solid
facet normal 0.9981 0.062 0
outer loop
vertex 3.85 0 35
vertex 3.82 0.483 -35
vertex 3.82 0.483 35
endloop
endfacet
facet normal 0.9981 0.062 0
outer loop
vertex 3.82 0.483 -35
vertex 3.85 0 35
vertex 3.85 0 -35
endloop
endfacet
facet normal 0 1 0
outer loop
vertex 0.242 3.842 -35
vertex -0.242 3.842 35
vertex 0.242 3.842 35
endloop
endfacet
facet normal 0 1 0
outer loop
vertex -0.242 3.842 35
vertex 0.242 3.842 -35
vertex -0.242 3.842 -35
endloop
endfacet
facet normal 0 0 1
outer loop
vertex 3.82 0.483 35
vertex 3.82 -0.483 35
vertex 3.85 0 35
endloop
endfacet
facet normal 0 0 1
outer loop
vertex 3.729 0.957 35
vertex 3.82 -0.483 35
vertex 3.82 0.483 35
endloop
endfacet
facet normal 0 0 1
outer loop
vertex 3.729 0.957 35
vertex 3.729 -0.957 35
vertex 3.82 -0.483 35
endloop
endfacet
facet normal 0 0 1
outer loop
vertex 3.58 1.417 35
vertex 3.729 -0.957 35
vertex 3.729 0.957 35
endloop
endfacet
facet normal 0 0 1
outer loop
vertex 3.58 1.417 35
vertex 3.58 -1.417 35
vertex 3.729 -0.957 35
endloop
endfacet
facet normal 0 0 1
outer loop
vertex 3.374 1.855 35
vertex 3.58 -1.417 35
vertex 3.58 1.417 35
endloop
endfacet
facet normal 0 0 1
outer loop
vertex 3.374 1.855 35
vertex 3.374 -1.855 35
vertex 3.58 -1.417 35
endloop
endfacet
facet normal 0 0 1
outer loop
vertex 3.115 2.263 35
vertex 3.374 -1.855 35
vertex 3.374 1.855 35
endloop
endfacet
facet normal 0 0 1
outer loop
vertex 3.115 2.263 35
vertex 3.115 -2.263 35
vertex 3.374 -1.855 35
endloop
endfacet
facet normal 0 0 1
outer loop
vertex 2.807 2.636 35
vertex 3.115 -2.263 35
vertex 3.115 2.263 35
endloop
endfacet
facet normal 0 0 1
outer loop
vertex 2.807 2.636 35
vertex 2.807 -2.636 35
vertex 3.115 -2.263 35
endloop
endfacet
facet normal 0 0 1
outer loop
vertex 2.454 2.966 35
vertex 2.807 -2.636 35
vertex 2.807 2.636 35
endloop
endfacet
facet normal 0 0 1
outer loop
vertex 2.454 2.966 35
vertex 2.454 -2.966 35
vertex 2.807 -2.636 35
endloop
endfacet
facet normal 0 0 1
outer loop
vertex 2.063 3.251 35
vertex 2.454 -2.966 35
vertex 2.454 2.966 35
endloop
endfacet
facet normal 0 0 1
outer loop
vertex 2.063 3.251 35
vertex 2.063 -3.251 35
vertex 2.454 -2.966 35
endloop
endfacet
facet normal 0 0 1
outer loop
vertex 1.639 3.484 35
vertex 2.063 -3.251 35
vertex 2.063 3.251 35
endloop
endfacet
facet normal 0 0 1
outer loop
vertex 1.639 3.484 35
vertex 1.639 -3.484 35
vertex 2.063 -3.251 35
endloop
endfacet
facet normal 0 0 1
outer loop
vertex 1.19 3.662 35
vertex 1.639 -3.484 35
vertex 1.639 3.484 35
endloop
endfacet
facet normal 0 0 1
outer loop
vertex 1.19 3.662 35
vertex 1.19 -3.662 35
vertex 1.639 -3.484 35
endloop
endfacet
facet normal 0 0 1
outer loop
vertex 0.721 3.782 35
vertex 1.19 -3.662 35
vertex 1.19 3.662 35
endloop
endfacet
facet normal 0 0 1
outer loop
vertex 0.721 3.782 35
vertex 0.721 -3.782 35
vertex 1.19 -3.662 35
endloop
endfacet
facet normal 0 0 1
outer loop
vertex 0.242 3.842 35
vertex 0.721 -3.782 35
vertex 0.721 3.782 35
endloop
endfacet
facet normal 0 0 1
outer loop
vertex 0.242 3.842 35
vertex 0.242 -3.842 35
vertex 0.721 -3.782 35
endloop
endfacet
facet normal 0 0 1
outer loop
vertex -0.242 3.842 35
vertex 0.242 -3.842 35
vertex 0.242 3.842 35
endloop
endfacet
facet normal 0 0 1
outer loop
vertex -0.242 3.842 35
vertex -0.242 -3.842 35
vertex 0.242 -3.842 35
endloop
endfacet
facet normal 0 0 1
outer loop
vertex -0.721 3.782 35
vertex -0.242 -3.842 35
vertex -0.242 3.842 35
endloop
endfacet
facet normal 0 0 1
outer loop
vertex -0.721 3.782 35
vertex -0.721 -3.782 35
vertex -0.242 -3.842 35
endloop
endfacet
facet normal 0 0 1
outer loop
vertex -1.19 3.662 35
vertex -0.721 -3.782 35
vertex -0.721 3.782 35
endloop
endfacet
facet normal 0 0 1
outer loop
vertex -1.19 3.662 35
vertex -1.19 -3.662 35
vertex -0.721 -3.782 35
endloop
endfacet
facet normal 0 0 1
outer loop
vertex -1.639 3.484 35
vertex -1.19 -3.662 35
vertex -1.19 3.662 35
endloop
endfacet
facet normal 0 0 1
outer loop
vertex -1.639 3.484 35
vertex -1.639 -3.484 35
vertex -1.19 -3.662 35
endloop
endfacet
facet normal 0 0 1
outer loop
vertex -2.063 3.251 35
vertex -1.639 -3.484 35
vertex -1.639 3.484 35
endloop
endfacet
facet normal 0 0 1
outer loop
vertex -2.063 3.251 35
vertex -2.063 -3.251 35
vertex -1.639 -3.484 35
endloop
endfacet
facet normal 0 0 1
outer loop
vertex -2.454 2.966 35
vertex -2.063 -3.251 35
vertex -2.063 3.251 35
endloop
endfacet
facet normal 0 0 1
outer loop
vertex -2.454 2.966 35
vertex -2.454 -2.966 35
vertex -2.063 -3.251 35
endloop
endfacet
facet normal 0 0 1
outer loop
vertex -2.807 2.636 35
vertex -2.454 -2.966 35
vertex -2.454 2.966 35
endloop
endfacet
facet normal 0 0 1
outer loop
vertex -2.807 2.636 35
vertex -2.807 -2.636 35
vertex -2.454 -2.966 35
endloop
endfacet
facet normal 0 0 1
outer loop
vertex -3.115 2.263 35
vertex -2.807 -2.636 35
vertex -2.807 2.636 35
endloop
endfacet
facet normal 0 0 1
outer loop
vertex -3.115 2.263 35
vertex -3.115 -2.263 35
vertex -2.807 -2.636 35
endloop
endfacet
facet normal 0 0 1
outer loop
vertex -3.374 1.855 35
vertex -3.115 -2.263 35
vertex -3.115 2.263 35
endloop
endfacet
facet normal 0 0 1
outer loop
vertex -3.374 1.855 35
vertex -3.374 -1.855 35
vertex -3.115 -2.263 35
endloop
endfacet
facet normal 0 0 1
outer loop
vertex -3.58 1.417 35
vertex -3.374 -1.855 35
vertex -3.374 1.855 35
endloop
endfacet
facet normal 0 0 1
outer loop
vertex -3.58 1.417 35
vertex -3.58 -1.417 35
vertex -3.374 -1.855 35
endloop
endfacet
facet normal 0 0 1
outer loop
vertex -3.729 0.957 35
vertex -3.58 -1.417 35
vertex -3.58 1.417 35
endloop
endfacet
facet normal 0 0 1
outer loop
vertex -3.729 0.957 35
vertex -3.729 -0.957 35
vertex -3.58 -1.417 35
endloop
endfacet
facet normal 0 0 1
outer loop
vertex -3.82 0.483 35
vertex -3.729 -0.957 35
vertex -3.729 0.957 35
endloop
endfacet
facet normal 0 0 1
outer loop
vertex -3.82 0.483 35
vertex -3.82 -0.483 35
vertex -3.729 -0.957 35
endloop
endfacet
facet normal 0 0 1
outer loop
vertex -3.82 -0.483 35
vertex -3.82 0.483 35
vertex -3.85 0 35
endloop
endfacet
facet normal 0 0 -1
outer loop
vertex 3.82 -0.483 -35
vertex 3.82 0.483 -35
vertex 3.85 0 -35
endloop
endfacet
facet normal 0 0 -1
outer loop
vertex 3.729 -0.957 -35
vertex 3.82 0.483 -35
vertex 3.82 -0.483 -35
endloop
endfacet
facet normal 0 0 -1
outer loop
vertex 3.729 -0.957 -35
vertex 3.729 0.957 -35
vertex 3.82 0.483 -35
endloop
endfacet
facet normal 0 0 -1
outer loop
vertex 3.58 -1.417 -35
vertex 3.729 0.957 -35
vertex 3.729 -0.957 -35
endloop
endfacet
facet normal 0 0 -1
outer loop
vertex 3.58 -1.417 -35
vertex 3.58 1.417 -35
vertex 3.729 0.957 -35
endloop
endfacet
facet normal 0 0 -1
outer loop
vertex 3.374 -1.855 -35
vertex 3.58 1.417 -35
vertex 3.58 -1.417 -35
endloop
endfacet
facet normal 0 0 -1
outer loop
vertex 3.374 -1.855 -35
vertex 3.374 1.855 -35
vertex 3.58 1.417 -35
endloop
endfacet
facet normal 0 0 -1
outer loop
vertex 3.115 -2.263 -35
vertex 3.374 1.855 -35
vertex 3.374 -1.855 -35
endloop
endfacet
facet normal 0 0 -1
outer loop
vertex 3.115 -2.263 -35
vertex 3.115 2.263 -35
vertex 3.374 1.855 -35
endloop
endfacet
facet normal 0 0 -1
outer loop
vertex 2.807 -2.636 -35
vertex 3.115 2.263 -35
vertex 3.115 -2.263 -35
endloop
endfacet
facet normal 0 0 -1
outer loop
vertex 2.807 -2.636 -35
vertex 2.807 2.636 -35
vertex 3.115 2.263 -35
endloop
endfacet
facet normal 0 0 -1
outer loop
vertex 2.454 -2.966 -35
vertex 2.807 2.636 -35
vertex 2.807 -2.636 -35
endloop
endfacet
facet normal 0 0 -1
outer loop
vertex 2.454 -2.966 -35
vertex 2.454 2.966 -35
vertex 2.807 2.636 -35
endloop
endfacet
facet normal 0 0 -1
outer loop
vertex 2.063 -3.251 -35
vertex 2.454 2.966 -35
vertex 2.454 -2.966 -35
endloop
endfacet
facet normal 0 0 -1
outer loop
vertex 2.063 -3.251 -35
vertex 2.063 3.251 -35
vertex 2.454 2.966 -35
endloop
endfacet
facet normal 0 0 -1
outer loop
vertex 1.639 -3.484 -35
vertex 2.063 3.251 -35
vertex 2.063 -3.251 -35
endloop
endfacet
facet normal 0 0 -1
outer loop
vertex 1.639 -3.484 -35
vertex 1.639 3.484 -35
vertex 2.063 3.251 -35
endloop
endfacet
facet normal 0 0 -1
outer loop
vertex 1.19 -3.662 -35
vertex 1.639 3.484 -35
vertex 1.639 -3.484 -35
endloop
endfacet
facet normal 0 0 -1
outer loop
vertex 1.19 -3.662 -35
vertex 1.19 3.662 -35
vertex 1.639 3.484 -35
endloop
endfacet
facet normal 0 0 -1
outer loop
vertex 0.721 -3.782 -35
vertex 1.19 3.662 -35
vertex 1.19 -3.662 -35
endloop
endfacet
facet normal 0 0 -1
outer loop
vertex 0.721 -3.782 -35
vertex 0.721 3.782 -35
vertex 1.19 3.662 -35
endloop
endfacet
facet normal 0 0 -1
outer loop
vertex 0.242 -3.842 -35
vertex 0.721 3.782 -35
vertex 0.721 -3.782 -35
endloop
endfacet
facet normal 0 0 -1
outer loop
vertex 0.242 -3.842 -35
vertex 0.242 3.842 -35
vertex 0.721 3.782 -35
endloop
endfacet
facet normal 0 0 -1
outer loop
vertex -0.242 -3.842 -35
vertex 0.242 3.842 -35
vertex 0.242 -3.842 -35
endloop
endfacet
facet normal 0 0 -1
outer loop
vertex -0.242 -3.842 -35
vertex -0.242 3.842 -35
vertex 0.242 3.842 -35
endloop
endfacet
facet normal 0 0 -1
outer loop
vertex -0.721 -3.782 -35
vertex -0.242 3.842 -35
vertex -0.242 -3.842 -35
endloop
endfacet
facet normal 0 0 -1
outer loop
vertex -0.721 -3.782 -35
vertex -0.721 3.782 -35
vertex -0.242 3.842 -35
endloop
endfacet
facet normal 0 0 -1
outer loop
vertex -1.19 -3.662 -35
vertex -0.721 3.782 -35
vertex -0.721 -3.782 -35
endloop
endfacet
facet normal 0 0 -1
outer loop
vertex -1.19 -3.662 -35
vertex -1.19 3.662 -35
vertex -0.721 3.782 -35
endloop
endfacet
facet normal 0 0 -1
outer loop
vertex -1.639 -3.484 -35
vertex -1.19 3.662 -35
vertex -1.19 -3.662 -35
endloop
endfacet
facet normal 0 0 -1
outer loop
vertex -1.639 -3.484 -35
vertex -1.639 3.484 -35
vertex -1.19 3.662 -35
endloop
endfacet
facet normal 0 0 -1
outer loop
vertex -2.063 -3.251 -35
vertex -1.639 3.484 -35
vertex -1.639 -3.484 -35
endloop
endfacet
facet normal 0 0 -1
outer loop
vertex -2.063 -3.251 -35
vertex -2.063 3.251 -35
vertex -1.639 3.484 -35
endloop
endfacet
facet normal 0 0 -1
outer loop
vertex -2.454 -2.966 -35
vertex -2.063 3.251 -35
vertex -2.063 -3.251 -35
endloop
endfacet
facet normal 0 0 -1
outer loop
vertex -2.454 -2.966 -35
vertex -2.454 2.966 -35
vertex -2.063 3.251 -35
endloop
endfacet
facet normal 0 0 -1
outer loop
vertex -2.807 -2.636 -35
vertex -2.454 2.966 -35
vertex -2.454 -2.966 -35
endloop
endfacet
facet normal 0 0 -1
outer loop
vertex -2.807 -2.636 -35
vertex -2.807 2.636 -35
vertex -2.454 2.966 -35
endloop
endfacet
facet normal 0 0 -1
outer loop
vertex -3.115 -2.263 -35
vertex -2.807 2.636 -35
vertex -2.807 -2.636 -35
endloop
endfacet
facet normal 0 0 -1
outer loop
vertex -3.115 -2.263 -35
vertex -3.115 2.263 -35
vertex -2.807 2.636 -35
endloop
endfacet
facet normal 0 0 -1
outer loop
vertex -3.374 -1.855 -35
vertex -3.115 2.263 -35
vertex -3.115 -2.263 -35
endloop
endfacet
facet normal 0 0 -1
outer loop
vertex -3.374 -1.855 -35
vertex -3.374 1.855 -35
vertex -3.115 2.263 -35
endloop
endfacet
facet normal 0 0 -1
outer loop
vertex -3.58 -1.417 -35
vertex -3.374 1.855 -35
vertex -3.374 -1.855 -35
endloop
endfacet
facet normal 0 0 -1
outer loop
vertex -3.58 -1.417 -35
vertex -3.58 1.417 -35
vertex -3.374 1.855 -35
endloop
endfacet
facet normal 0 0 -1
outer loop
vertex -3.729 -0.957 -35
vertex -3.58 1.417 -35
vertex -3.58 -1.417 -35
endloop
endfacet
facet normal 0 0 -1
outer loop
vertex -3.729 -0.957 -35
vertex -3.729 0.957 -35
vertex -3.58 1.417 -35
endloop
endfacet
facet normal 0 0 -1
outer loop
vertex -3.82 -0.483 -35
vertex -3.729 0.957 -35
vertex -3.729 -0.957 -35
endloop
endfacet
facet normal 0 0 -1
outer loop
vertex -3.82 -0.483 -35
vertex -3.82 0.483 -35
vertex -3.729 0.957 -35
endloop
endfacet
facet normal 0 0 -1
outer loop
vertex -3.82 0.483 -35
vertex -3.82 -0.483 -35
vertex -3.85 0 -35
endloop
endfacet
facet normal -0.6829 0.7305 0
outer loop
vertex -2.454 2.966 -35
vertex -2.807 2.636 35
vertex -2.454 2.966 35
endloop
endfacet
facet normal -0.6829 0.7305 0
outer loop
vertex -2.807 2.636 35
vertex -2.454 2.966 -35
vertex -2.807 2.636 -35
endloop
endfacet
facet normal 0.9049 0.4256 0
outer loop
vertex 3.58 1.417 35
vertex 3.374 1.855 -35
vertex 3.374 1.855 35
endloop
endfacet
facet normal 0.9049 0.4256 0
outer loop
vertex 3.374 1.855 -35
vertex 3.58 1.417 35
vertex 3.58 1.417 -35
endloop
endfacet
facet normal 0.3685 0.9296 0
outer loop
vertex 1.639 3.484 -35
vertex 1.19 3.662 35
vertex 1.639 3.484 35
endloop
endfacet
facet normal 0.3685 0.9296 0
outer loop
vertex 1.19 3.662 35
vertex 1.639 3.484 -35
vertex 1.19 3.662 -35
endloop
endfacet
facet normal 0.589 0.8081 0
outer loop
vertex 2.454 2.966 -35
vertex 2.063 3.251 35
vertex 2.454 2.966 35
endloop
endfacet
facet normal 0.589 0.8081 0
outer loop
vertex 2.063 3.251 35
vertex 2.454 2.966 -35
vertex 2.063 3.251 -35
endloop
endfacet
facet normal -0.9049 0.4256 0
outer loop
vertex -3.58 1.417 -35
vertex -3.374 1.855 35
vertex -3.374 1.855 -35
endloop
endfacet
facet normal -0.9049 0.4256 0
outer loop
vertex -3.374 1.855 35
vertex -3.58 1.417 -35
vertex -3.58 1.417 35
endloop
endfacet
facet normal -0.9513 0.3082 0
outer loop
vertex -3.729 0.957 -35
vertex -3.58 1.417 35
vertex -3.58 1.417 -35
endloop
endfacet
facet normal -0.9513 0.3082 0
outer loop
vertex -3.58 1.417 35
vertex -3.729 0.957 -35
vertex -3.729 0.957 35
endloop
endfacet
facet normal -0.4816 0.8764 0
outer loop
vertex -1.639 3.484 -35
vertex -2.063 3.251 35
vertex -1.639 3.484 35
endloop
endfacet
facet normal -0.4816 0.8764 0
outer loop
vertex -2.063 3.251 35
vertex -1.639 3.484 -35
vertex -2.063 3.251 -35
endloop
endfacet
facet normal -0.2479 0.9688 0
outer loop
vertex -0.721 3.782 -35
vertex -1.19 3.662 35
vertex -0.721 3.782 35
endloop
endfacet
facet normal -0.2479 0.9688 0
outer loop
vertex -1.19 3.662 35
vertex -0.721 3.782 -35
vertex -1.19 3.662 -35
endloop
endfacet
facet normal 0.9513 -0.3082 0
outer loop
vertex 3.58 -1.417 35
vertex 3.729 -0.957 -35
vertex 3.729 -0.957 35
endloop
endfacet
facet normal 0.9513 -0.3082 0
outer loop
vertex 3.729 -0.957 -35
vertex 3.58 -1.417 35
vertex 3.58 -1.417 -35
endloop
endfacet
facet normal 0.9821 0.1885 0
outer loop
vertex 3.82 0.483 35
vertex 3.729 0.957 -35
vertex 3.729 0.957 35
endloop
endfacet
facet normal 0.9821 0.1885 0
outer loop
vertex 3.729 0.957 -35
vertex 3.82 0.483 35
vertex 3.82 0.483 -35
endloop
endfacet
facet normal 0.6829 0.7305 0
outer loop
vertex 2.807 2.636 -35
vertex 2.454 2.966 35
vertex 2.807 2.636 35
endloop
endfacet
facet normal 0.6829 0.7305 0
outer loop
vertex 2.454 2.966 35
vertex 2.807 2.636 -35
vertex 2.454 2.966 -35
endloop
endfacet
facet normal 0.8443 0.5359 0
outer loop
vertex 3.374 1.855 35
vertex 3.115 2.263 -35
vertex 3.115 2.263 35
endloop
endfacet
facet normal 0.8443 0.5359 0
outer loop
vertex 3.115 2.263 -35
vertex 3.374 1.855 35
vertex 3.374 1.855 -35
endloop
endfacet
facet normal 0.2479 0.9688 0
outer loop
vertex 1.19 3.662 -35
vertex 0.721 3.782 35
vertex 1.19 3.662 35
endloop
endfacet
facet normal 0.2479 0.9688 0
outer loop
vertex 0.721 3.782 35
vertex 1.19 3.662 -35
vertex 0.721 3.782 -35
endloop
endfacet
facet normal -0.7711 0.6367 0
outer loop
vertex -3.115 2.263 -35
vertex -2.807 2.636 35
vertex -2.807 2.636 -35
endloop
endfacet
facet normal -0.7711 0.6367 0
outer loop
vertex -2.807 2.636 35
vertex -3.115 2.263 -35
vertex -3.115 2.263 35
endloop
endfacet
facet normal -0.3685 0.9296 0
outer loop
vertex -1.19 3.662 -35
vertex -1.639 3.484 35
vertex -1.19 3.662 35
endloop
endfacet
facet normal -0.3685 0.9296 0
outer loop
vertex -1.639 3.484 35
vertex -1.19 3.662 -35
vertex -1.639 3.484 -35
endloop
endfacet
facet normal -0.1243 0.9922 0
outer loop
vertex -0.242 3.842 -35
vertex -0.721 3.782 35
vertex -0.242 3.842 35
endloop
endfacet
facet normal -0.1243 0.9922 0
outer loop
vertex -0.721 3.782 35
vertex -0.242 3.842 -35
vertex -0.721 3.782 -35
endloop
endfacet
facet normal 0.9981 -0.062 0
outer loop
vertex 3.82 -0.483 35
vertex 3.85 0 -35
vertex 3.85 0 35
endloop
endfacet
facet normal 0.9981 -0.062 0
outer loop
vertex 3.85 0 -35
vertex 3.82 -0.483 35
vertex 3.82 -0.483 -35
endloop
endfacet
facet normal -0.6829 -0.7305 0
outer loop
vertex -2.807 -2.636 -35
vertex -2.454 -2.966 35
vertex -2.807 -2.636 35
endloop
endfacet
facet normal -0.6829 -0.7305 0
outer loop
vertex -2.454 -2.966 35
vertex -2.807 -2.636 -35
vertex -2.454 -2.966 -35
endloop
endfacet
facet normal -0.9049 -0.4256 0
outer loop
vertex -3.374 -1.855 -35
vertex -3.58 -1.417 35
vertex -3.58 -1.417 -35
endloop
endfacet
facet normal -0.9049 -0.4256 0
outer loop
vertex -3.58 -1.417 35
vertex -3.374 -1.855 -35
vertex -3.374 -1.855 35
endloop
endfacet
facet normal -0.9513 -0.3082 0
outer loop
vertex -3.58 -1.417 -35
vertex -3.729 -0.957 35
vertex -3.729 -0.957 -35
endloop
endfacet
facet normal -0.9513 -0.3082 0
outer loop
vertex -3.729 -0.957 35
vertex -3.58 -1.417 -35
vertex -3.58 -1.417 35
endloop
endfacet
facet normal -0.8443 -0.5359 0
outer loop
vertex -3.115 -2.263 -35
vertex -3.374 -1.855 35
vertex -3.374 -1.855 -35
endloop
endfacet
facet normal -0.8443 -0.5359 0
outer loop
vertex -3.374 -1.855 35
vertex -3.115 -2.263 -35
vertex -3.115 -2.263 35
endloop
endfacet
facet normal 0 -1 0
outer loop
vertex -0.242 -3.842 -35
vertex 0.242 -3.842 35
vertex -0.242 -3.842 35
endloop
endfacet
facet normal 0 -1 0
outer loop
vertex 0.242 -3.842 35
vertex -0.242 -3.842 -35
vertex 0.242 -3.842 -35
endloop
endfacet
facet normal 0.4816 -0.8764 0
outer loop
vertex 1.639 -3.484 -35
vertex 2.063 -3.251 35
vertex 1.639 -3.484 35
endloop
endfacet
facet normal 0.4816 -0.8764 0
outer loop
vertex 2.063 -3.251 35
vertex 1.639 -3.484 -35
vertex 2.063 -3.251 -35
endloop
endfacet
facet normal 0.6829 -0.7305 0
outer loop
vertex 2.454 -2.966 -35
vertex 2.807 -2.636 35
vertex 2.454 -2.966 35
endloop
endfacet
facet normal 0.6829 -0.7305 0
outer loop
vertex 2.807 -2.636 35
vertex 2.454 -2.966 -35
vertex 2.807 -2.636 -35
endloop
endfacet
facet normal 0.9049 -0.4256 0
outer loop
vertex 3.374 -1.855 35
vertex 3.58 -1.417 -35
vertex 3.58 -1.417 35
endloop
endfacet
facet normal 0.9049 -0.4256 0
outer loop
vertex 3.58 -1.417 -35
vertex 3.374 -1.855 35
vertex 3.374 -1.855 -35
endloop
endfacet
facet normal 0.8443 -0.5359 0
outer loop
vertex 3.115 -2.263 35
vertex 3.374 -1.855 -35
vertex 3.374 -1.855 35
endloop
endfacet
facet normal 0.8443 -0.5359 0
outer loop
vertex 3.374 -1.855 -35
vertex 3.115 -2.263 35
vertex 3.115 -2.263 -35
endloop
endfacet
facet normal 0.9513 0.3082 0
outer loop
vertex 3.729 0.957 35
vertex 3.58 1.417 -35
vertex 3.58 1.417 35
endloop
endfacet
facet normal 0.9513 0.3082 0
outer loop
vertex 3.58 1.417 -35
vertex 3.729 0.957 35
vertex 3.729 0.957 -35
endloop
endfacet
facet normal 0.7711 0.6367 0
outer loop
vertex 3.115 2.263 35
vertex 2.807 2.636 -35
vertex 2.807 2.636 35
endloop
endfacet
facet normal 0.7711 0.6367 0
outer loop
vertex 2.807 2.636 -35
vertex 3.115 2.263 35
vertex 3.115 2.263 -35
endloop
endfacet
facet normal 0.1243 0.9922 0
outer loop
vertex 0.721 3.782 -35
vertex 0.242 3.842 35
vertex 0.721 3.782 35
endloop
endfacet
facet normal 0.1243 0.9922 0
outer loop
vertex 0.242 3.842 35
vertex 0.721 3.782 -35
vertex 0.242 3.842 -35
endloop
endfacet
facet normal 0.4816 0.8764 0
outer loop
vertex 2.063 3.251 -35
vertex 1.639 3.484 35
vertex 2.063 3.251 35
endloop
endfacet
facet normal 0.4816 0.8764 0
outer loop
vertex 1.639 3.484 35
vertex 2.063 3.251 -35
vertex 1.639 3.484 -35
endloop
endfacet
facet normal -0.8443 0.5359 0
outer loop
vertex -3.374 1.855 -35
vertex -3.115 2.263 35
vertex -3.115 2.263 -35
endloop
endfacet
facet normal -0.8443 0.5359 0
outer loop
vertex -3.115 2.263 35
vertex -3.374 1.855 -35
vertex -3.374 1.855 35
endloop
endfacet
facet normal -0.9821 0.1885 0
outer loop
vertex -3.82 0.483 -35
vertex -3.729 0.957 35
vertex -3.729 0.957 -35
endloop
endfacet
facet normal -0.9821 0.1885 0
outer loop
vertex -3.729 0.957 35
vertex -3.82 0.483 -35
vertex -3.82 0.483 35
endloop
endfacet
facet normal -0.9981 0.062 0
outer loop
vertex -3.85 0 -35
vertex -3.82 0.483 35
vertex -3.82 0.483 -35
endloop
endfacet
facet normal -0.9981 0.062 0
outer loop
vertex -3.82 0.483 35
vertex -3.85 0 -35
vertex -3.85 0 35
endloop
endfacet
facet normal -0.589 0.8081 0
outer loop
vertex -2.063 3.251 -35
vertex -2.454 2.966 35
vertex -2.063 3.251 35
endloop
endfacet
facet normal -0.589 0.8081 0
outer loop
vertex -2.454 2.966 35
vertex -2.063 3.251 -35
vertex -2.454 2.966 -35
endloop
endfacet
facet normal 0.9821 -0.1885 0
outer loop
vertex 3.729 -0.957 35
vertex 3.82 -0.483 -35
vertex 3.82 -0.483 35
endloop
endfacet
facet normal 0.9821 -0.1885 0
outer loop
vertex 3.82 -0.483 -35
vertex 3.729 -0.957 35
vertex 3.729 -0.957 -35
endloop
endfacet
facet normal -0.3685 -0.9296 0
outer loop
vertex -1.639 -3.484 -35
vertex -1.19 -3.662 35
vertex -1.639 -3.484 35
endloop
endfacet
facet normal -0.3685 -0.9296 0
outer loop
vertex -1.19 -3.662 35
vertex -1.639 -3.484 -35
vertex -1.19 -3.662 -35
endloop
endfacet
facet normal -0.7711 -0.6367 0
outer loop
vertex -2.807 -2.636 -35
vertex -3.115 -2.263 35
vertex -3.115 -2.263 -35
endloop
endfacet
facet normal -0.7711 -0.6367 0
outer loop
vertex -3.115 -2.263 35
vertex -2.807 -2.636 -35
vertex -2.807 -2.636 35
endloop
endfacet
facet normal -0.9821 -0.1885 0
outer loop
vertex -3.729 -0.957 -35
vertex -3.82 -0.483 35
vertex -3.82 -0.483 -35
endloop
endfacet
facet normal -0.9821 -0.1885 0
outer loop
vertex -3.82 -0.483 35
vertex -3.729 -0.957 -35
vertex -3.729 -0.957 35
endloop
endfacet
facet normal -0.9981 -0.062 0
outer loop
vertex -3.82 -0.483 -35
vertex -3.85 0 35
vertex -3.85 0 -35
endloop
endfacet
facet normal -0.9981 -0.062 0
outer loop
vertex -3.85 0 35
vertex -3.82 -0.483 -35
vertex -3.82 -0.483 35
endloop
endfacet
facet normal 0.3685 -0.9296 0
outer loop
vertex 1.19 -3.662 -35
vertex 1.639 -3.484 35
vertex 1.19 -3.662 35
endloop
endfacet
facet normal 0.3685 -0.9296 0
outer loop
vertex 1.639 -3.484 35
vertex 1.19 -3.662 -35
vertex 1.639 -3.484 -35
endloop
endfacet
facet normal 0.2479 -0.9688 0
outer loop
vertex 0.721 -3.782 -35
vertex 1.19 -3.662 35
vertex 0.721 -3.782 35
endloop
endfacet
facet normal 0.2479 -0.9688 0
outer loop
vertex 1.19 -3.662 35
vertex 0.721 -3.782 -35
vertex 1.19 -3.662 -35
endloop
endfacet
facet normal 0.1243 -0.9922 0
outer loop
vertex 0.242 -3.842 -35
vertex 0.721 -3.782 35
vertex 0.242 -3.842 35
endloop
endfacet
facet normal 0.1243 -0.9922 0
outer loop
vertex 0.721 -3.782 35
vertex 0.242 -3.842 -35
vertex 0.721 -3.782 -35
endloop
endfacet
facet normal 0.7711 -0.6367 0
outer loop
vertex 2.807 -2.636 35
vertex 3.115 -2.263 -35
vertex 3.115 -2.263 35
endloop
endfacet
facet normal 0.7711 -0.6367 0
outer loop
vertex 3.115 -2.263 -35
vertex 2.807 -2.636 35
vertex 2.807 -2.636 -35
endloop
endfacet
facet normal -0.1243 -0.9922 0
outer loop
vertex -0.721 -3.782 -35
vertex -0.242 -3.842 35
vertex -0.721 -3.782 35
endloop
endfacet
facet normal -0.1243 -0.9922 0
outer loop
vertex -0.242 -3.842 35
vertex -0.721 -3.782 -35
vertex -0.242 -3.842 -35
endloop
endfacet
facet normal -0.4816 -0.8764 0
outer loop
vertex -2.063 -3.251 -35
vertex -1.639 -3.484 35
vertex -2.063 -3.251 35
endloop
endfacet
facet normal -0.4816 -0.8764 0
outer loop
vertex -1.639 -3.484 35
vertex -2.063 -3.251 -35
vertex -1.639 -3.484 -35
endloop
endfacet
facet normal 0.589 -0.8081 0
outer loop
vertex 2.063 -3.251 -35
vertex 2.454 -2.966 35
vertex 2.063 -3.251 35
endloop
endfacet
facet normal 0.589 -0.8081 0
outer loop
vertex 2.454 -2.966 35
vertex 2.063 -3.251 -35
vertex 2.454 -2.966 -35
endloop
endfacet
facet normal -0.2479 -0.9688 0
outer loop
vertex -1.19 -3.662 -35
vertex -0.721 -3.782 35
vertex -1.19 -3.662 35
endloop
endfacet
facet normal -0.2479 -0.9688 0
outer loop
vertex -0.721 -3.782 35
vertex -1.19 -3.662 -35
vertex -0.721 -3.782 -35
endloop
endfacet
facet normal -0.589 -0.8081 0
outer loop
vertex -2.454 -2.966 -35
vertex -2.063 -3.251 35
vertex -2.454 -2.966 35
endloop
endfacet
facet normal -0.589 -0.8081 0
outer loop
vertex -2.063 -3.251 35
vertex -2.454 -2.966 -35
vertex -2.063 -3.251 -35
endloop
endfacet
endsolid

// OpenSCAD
$fn = 50;


difference() {
	union() {
		translate(v = [0, 0, -35.0000000000]) {
			cylinder(h = 70, r = 3.8500000000);
		}
	}
	union() {
		translate(v = [0, 0, -100.0000000000]) {
			cylinder(h = 200, r = 0);
		}
	}
}
